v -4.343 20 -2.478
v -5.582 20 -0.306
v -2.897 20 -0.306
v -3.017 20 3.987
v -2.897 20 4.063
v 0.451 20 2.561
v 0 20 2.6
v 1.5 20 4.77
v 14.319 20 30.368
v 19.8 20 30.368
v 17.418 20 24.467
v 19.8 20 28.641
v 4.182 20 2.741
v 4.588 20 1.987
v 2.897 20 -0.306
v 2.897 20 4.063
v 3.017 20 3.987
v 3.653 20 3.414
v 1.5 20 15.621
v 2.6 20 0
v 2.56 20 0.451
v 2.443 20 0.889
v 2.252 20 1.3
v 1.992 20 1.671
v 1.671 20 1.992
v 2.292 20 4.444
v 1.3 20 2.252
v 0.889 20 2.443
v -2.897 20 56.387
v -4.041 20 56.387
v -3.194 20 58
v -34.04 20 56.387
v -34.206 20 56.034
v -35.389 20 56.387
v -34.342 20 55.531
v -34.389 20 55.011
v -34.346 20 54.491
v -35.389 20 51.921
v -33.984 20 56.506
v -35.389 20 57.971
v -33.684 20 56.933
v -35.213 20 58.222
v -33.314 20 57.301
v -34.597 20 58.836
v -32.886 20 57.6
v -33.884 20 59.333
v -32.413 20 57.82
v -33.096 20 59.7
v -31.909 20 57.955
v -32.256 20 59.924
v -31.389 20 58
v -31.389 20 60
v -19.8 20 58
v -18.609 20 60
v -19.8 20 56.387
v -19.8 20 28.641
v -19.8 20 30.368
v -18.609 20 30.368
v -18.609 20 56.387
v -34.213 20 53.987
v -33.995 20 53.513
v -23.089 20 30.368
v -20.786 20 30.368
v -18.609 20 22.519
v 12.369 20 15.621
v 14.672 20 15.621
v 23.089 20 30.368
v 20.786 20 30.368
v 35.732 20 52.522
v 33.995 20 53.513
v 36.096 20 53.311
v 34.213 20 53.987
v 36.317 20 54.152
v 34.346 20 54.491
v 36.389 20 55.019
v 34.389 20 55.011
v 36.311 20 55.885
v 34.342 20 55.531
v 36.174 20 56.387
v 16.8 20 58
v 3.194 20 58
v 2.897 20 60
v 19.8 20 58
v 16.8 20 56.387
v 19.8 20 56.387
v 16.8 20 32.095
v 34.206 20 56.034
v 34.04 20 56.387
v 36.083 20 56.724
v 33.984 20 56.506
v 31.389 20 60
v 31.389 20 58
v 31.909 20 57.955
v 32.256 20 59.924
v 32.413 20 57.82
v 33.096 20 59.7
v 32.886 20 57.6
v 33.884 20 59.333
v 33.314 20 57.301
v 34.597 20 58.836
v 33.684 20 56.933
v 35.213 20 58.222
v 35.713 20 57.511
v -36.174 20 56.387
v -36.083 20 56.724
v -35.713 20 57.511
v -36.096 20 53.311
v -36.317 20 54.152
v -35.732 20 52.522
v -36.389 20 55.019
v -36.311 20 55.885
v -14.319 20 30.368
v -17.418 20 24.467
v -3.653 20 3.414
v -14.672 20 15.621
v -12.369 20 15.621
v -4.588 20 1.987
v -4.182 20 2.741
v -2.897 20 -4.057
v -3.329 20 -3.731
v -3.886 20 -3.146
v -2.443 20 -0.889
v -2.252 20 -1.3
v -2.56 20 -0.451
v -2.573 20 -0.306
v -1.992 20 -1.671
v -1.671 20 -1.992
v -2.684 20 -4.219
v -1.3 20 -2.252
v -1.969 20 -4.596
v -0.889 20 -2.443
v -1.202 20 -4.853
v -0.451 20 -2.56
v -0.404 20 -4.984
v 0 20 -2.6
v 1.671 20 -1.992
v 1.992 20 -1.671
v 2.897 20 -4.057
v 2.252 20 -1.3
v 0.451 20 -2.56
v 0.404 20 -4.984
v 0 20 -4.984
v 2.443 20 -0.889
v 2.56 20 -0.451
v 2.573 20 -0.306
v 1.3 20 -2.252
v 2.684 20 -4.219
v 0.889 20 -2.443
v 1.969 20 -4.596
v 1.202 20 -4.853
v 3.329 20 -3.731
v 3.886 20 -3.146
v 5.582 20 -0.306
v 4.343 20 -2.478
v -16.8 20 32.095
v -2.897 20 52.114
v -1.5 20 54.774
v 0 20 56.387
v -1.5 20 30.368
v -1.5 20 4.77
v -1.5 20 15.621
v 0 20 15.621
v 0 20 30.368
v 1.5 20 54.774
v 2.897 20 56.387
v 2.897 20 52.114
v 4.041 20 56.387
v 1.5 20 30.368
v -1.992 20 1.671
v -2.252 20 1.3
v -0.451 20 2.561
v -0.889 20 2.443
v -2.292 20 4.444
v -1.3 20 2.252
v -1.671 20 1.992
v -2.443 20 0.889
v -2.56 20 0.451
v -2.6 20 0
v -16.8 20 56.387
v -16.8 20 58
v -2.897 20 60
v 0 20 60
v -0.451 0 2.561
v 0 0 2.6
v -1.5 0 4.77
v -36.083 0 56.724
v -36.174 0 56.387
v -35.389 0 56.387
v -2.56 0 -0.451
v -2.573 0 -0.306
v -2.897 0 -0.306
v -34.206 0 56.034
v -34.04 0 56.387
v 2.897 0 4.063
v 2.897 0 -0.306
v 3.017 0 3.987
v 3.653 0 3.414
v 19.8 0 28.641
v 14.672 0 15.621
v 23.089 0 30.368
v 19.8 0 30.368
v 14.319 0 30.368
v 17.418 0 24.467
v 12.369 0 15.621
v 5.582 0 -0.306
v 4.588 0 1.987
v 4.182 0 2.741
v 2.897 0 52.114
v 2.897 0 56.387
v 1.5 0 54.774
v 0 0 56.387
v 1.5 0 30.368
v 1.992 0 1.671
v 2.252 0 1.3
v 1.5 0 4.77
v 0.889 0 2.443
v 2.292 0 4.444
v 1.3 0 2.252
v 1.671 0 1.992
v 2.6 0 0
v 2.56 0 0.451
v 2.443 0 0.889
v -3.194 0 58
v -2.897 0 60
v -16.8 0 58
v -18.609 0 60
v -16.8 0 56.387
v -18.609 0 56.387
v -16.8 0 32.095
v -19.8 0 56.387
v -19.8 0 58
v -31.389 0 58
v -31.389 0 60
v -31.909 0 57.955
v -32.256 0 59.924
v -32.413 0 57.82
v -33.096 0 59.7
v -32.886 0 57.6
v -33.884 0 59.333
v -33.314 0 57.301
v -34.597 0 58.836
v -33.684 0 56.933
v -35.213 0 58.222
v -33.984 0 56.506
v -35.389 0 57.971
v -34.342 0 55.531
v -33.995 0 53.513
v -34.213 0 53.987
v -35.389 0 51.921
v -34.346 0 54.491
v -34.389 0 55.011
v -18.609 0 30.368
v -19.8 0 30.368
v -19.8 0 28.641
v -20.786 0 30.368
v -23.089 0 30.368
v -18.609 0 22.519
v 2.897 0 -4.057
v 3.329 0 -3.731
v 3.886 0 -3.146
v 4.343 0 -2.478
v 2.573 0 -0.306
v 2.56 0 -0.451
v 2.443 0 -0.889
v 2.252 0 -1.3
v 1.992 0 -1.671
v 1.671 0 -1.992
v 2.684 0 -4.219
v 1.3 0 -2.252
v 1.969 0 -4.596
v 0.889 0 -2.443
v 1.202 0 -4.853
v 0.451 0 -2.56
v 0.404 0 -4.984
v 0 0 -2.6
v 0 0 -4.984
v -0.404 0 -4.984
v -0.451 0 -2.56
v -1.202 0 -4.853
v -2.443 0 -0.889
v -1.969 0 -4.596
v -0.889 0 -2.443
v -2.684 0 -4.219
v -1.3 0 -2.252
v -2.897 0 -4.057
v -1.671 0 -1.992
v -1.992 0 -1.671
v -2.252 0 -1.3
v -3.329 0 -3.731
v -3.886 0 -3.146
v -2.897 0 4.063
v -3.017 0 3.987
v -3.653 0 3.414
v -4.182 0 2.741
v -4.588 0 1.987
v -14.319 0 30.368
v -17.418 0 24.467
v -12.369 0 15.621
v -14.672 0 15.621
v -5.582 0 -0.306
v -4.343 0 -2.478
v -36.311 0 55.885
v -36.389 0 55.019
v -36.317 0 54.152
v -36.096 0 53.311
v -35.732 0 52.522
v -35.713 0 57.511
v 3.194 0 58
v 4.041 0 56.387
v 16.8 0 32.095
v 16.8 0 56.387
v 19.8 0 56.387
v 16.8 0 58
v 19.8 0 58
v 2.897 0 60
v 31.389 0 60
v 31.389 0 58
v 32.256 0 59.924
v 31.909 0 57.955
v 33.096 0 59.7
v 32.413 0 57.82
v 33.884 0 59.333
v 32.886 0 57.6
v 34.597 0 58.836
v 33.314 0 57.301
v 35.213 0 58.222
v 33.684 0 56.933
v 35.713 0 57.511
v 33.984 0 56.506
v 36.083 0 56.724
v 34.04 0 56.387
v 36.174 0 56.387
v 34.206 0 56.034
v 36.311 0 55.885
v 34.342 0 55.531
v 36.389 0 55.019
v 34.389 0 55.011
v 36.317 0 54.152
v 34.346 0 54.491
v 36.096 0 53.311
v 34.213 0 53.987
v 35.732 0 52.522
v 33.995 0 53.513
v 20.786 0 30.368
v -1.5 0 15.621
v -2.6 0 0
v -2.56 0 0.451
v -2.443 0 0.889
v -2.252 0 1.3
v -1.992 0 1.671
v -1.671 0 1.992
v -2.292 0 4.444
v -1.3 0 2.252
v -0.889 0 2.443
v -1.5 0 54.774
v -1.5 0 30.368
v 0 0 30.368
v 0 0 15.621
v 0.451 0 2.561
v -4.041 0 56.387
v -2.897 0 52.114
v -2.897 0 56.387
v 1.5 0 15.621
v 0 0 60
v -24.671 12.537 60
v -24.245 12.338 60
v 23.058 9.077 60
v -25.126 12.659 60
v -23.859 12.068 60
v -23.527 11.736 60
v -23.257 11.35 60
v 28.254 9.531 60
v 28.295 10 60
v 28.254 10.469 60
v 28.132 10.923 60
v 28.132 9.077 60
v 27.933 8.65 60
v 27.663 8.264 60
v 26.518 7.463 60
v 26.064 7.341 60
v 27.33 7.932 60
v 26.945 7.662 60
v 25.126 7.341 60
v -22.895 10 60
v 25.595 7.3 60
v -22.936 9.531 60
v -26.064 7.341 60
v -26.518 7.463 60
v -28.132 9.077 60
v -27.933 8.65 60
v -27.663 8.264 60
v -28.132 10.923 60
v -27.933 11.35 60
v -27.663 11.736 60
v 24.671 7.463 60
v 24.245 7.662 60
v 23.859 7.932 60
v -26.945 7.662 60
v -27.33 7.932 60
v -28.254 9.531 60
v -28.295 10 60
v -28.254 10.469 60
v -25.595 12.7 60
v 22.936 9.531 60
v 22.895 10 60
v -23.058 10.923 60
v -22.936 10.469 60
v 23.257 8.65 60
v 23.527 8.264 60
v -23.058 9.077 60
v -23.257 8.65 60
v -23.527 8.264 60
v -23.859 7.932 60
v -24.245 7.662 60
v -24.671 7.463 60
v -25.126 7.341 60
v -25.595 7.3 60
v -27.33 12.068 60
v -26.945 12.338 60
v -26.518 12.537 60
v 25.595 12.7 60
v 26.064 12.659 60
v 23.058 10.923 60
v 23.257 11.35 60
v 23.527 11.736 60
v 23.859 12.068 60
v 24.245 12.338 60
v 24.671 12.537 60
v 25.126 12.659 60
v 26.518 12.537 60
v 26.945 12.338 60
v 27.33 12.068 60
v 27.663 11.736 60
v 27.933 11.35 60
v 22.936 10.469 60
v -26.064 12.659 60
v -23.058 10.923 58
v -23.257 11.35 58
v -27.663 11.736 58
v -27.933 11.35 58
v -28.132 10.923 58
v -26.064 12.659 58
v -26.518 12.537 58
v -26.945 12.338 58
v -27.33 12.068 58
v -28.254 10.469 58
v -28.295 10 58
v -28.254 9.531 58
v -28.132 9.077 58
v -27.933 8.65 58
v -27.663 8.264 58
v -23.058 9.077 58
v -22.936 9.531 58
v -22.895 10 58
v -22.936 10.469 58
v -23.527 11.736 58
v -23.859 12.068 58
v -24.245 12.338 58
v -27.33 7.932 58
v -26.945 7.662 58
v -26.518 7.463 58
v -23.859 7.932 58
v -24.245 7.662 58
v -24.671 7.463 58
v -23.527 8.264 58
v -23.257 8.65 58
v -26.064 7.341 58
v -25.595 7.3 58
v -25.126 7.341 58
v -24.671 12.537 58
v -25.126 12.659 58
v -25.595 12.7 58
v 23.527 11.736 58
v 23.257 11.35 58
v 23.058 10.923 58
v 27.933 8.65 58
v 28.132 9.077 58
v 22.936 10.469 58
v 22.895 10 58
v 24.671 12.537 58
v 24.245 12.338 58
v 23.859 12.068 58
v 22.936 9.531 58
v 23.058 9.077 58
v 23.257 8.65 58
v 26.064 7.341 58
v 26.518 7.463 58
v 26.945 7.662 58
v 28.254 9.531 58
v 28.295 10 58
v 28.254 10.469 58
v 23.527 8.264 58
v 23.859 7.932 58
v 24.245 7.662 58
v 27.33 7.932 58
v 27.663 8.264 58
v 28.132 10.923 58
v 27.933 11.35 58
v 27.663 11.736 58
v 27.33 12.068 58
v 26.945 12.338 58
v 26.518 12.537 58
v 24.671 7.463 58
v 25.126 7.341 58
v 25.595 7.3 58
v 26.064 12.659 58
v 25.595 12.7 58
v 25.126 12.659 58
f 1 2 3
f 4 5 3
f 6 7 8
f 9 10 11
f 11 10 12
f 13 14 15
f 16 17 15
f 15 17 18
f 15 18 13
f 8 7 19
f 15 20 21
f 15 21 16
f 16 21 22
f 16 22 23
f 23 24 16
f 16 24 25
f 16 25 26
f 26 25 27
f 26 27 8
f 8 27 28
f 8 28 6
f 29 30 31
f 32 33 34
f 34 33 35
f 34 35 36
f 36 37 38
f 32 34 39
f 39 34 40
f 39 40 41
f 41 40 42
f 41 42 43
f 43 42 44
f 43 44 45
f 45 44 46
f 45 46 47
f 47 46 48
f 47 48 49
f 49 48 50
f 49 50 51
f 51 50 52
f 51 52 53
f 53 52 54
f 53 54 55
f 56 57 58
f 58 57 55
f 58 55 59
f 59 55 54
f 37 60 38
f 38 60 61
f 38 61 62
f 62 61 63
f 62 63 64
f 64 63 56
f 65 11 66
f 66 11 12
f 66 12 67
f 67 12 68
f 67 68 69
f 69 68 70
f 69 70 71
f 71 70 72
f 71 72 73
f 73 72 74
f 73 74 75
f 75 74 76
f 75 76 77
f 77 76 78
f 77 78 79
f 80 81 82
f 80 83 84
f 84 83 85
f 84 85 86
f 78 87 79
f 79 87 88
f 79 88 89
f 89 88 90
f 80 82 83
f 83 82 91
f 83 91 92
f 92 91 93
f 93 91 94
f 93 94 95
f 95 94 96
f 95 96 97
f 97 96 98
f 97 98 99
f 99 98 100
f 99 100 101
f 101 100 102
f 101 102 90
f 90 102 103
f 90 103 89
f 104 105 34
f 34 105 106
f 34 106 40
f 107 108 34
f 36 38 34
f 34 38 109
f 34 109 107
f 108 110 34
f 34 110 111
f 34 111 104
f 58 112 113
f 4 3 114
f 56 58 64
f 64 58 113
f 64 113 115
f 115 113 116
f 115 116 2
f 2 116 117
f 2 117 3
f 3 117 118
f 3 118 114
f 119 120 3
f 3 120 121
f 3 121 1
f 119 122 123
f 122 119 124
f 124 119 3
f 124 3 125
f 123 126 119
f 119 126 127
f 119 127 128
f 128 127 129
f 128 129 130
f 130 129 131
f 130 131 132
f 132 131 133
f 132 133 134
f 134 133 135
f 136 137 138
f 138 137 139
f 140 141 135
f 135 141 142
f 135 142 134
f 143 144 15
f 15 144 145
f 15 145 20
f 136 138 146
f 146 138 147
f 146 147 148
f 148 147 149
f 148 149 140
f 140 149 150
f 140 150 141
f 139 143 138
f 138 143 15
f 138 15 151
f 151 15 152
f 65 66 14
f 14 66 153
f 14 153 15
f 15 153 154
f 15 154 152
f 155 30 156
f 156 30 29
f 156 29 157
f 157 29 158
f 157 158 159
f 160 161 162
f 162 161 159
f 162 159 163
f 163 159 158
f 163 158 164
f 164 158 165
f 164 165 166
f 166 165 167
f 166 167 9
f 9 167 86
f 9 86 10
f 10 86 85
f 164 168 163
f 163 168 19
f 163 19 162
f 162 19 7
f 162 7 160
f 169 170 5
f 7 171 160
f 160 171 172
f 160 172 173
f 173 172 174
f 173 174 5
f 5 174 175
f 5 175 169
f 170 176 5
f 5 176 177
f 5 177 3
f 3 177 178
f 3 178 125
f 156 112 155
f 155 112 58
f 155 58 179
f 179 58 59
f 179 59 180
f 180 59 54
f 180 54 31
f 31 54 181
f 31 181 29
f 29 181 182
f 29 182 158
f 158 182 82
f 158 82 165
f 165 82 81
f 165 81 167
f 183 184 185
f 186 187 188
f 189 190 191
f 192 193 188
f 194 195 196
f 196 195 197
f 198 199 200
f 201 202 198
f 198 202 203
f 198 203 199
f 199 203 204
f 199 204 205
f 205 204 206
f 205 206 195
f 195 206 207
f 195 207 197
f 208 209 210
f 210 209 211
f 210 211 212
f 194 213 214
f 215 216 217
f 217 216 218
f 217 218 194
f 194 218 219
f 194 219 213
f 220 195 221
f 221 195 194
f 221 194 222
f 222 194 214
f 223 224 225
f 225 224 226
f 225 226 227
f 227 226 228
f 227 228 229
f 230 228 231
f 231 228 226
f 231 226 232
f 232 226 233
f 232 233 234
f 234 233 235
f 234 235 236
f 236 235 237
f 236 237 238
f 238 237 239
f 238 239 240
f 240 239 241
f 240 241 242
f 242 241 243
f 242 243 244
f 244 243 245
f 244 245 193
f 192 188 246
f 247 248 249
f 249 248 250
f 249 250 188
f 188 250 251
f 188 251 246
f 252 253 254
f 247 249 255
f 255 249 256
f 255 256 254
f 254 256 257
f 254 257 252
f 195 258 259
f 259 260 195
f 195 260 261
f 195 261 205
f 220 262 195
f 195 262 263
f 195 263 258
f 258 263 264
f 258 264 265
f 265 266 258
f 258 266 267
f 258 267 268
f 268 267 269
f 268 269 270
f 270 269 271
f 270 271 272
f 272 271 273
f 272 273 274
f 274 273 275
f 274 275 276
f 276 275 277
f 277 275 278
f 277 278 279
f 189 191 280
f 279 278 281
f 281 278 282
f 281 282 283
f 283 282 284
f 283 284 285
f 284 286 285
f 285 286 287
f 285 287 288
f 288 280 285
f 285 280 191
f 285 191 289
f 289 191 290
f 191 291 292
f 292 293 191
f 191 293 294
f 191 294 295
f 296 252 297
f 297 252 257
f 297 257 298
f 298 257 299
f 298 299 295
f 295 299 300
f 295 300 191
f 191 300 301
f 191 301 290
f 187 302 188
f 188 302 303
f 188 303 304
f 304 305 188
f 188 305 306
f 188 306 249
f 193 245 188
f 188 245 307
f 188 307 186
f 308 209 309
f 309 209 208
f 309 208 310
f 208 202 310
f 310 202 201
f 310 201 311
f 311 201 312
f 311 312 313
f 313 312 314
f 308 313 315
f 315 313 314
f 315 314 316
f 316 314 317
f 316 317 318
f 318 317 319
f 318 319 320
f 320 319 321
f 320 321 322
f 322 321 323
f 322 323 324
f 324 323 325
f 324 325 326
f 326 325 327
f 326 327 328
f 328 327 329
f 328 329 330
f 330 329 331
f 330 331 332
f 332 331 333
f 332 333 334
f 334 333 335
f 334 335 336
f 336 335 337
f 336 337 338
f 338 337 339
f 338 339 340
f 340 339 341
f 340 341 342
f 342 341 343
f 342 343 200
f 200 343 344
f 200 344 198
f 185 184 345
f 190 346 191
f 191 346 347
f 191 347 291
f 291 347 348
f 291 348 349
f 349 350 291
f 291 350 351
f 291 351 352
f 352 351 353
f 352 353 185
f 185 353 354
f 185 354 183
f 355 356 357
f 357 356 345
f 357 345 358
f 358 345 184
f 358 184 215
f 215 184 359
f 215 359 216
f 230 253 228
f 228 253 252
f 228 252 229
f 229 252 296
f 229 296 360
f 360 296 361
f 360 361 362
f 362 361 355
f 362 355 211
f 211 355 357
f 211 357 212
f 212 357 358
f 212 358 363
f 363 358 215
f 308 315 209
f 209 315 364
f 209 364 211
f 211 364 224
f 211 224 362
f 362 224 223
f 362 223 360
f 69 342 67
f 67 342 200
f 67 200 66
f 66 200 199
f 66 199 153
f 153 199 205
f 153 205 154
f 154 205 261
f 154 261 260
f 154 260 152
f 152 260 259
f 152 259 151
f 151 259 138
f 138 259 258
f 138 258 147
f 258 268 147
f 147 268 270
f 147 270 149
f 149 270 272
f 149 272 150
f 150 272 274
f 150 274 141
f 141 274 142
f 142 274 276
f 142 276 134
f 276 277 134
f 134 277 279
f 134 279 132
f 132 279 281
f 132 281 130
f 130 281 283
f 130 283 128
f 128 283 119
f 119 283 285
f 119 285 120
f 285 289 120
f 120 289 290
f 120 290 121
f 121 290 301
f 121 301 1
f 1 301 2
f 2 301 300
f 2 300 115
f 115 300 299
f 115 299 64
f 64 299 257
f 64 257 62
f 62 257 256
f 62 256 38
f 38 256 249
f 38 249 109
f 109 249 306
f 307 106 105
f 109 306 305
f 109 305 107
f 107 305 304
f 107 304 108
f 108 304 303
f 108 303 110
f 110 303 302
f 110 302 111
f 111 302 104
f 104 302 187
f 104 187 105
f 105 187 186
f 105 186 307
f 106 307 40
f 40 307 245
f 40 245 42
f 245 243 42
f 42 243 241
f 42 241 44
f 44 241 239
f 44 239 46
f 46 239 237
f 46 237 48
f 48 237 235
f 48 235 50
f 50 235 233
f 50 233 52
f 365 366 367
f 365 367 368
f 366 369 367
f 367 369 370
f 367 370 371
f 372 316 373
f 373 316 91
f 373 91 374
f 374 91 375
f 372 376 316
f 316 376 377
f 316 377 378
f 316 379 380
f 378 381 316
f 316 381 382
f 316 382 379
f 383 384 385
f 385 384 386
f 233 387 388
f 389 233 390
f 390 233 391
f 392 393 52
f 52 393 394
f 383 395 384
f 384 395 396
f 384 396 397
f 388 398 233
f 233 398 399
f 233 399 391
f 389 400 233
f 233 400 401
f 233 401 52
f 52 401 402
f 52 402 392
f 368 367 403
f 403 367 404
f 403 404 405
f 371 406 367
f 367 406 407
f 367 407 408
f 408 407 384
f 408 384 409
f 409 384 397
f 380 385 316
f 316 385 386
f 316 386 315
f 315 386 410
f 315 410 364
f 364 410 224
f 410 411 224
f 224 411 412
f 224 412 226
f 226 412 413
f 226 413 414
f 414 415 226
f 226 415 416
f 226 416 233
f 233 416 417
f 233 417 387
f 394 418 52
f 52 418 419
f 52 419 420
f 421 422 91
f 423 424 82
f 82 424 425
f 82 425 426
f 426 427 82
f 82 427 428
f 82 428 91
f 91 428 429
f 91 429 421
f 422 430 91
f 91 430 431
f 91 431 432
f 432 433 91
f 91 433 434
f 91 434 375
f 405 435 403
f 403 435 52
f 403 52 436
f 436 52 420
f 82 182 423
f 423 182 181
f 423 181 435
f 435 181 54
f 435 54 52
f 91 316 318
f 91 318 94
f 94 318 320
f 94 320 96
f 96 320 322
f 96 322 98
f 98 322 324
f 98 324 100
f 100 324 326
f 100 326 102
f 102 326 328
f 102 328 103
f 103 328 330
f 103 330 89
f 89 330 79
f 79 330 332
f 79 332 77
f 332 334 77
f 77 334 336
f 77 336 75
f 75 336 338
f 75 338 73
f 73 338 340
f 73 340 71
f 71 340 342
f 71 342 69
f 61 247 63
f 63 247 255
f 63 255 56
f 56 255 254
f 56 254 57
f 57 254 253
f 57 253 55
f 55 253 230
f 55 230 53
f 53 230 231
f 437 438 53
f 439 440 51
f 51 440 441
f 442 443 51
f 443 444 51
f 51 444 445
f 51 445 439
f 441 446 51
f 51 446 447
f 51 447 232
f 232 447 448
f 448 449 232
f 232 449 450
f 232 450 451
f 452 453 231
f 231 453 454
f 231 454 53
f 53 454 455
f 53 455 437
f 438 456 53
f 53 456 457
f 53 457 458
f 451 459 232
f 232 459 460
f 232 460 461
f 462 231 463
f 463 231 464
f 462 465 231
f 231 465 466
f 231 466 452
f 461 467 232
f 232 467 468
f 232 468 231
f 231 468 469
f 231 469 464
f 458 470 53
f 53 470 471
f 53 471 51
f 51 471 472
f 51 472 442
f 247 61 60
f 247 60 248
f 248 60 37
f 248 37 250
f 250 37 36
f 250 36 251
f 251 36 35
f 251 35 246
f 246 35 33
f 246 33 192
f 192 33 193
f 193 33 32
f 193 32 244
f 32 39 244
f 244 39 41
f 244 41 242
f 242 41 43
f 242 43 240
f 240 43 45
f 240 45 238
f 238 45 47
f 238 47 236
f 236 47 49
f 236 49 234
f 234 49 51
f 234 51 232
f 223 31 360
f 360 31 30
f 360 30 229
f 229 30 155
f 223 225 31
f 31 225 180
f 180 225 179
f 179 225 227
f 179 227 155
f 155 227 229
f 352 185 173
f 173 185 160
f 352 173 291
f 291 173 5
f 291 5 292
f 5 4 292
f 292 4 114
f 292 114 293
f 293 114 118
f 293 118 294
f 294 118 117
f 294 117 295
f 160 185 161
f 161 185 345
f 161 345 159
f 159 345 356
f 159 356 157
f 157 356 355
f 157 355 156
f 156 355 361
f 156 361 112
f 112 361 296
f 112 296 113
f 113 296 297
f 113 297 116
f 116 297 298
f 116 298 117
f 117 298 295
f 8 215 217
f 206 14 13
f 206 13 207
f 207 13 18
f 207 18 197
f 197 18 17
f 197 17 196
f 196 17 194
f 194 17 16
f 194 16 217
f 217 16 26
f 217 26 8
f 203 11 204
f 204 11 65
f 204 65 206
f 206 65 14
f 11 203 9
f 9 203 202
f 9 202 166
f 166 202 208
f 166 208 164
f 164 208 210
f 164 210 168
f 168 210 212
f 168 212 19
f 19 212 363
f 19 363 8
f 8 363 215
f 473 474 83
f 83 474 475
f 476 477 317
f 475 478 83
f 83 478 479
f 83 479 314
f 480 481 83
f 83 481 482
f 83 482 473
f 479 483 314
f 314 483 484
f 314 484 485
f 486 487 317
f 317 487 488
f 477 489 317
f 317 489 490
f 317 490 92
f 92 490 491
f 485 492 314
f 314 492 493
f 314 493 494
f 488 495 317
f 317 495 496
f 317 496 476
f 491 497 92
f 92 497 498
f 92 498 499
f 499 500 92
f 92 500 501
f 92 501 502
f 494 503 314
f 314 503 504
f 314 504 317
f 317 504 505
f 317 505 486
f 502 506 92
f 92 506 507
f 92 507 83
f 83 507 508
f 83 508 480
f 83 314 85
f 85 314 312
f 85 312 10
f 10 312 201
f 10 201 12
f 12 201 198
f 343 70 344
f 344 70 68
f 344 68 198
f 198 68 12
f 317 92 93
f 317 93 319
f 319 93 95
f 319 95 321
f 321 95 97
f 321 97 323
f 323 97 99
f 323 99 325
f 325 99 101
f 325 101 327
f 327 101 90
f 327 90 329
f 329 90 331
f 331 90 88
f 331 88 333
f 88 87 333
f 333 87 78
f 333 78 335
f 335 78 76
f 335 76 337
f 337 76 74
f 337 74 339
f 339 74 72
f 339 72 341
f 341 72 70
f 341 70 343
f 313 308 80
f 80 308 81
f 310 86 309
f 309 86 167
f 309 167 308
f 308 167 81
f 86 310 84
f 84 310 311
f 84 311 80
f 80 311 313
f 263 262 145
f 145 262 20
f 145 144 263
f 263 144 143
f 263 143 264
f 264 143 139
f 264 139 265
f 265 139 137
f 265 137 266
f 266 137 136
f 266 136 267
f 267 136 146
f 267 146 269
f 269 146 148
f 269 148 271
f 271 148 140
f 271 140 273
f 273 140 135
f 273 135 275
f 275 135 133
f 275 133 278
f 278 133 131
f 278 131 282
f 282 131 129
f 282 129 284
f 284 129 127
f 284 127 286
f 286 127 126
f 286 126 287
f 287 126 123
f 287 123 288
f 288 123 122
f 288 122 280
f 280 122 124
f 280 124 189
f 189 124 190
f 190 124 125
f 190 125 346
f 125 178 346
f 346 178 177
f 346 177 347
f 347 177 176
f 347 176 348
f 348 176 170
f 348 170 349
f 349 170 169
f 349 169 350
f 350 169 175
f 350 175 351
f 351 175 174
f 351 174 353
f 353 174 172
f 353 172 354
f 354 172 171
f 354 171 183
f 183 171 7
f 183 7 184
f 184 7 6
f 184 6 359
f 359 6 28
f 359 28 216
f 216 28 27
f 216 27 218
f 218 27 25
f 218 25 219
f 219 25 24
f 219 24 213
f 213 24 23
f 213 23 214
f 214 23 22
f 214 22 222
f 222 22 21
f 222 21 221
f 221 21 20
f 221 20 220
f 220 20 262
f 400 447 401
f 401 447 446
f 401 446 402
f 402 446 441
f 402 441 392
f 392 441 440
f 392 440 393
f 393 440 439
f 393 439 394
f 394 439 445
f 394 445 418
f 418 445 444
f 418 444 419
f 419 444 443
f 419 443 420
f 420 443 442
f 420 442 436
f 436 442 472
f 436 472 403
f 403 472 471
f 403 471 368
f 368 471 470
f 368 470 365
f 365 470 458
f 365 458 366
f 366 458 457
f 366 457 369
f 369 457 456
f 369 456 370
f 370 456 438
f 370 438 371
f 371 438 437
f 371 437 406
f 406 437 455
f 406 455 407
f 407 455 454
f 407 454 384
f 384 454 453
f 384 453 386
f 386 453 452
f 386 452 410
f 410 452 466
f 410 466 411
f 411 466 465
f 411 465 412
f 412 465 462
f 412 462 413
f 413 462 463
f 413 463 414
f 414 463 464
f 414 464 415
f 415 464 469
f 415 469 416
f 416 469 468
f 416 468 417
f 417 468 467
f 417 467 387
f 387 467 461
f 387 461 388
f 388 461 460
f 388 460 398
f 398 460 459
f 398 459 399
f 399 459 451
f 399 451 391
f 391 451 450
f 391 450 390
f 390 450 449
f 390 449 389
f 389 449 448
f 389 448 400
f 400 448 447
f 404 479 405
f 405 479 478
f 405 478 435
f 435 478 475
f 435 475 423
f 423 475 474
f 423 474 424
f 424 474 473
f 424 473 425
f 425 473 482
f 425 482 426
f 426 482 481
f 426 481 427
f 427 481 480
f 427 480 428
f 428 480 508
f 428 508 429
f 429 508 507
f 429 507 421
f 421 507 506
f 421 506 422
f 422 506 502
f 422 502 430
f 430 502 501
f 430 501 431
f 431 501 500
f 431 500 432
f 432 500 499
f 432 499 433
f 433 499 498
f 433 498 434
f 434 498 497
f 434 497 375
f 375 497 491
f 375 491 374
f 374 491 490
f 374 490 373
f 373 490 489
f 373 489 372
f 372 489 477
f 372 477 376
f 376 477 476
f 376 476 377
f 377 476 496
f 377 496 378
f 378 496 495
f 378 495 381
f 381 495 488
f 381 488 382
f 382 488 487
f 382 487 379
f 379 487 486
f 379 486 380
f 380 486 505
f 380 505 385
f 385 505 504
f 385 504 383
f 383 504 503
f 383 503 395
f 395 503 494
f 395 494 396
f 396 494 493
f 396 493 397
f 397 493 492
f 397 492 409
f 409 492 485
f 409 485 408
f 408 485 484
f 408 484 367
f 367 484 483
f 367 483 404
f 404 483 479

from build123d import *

# Parameters (mm, degrees)
SALIENTE_EXTRUIR1_DEPTH = 20
CORTAR_EXTRUIR1_START   = -20
CORTAR_EXTRUIR1_DEPTH   = 20
CROQUIS3_R              = 2.6
CORTAR_EXTRUIR2_DEPTH   = 20
CROQUIS4_R              = 2.7
CORTAR_EXTRUIR3_DEPTH   = 20


with BuildPart() as part:
    # Croquis1 → Saliente-Extruir1 (new body)
    with BuildSketch(Plane(origin=(0, 0, 0), x_dir=(1, 0, 0), z_dir=(0, 1, 0))):
        with BuildLine():
            Line((-4.342546511, 2.47836434), (-35.731971676, -52.52163566))
            ThreePointArc((-35.731971676, -52.52163566), (-35.713301997, -57.510794525), (-31.389425165, -60))
            Line((-31.389425165, -60), (31.389425165, -60))
            ThreePointArc((31.389425165, -60), (35.713301997, -57.510794525), (35.731971676, -52.52163566))
            Line((35.731971676, -52.52163566), (4.342546511, 2.47836434))
            ThreePointArc((4.342546511, 2.47836434), (0, 5), (-4.342546511, 2.47836434))
        make_face()
    extrude(amount=SALIENTE_EXTRUIR1_DEPTH)

    # Croquis2 → Cortar-Extruir1 (cut)
    with BuildSketch(Plane(origin=(0, 20, 0), x_dir=(1, 0, 0), z_dir=(0, 1, 0)).offset(CORTAR_EXTRUIR1_START)):
        with BuildLine():
            Line((-19.800240489, -58), (-19.800240489, -28.641255076))
            Line((-19.800240489, -28.641255076), (-33.994953072, -53.512981396))
            ThreePointArc((-33.994953072, -53.512981396), (-33.983751264, -56.506476715), (-31.389425165, -58))
            Line((-31.389425165, -58), (-19.800240489, -58))
        make_face()
        Polygon((-16.800240489, -58), (-3.194307375, -58), (-16.800240489, -32.094821088), align=None)
        with BuildLine():
            Line((-1.5, -54.77410323), (-1.5, -4.769696007))
            ThreePointArc((-1.5, -4.769696007), (-3.347002716, -3.714508422), (-4.588219379, -1.987018604))
            Line((-4.588219379, -1.987018604), (-17.417918454, -24.466992207))
            Line((-17.417918454, -24.466992207), (-1.5, -54.77410323))
        make_face()
        with BuildLine():
            ThreePointArc((4.588219379, -1.987018604), (3.347002716, -3.714508422), (1.5, -4.769696007))
            Line((1.5, -4.769696007), (1.5, -54.77410323))
            Line((1.5, -54.77410323), (17.417918454, -24.466992207))
            Line((17.417918454, -24.466992207), (4.588219379, -1.987018604))
        make_face()
        with BuildLine():
            Line((33.994953072, -53.512981396), (19.800240489, -28.641255076))
            Line((19.800240489, -28.641255076), (19.800240489, -58))
            Line((19.800240489, -58), (31.389425165, -58))
            ThreePointArc((31.389425165, -58), (33.983751264, -56.506476715), (33.994953072, -53.512981396))
        make_face()
        Polygon((16.800240489, -32.094821088), (3.194307375, -58), (16.800240489, -58), align=None)
    extrude(amount=CORTAR_EXTRUIR1_DEPTH, mode=Mode.SUBTRACT)

    # Croquis3 → Cortar-Extruir2 (cut)
    with BuildSketch(Plane(origin=(0, 20, 0), x_dir=(1, 0, 0), z_dir=(0, 1, 0))):
        with Locations(Location((0, 0, 0), (0, 0, 270))):
            Circle(CROQUIS3_R)
    extrude(amount=-CORTAR_EXTRUIR2_DEPTH, mode=Mode.SUBTRACT)

    # Croquis4 → Cortar-Extruir3 (cut)
    with BuildSketch(Plane(origin=(0, 0, 58), x_dir=(-1, 0, 0), z_dir=(0, 0, -1))):
        with Locations((25.594832827, 10)):
            Circle(CROQUIS4_R)
        with Locations((-25.594832827, 10)):
            Circle(CROQUIS4_R)
    extrude(amount=-CORTAR_EXTRUIR3_DEPTH, mode=Mode.SUBTRACT)


solid = part.part
